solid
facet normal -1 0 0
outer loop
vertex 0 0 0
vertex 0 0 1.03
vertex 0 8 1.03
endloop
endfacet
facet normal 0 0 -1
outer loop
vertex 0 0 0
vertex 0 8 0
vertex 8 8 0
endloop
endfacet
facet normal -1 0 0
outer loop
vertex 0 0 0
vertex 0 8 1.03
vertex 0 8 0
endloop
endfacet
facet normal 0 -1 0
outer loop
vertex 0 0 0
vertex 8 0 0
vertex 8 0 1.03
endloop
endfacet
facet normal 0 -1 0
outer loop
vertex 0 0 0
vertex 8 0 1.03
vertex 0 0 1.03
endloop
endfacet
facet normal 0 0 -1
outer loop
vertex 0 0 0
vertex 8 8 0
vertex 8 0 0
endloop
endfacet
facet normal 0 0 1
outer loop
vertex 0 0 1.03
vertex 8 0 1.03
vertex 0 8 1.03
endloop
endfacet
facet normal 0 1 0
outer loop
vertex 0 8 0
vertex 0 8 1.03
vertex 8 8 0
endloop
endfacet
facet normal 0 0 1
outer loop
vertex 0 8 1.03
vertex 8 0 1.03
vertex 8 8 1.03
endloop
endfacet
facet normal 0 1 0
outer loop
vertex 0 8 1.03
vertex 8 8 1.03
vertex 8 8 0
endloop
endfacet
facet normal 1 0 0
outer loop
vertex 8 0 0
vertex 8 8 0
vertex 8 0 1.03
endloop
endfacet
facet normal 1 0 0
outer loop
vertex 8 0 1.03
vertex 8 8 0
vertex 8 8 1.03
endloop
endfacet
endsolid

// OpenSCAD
/* Warning, this is a very basic generator with a lot of approximation 
input data : [SIP, 3XX, 8x8x1.03mm, 121, , C, C04-00212C]
generated by com.zoubworld.electronics.cad.model3d.Basic
Date : Sun Feb 15 10:50:48 CET 2026
*/

//body
color("black")
translate([0,0,0])
cube([8.0,8.0,1.03], center=false);
